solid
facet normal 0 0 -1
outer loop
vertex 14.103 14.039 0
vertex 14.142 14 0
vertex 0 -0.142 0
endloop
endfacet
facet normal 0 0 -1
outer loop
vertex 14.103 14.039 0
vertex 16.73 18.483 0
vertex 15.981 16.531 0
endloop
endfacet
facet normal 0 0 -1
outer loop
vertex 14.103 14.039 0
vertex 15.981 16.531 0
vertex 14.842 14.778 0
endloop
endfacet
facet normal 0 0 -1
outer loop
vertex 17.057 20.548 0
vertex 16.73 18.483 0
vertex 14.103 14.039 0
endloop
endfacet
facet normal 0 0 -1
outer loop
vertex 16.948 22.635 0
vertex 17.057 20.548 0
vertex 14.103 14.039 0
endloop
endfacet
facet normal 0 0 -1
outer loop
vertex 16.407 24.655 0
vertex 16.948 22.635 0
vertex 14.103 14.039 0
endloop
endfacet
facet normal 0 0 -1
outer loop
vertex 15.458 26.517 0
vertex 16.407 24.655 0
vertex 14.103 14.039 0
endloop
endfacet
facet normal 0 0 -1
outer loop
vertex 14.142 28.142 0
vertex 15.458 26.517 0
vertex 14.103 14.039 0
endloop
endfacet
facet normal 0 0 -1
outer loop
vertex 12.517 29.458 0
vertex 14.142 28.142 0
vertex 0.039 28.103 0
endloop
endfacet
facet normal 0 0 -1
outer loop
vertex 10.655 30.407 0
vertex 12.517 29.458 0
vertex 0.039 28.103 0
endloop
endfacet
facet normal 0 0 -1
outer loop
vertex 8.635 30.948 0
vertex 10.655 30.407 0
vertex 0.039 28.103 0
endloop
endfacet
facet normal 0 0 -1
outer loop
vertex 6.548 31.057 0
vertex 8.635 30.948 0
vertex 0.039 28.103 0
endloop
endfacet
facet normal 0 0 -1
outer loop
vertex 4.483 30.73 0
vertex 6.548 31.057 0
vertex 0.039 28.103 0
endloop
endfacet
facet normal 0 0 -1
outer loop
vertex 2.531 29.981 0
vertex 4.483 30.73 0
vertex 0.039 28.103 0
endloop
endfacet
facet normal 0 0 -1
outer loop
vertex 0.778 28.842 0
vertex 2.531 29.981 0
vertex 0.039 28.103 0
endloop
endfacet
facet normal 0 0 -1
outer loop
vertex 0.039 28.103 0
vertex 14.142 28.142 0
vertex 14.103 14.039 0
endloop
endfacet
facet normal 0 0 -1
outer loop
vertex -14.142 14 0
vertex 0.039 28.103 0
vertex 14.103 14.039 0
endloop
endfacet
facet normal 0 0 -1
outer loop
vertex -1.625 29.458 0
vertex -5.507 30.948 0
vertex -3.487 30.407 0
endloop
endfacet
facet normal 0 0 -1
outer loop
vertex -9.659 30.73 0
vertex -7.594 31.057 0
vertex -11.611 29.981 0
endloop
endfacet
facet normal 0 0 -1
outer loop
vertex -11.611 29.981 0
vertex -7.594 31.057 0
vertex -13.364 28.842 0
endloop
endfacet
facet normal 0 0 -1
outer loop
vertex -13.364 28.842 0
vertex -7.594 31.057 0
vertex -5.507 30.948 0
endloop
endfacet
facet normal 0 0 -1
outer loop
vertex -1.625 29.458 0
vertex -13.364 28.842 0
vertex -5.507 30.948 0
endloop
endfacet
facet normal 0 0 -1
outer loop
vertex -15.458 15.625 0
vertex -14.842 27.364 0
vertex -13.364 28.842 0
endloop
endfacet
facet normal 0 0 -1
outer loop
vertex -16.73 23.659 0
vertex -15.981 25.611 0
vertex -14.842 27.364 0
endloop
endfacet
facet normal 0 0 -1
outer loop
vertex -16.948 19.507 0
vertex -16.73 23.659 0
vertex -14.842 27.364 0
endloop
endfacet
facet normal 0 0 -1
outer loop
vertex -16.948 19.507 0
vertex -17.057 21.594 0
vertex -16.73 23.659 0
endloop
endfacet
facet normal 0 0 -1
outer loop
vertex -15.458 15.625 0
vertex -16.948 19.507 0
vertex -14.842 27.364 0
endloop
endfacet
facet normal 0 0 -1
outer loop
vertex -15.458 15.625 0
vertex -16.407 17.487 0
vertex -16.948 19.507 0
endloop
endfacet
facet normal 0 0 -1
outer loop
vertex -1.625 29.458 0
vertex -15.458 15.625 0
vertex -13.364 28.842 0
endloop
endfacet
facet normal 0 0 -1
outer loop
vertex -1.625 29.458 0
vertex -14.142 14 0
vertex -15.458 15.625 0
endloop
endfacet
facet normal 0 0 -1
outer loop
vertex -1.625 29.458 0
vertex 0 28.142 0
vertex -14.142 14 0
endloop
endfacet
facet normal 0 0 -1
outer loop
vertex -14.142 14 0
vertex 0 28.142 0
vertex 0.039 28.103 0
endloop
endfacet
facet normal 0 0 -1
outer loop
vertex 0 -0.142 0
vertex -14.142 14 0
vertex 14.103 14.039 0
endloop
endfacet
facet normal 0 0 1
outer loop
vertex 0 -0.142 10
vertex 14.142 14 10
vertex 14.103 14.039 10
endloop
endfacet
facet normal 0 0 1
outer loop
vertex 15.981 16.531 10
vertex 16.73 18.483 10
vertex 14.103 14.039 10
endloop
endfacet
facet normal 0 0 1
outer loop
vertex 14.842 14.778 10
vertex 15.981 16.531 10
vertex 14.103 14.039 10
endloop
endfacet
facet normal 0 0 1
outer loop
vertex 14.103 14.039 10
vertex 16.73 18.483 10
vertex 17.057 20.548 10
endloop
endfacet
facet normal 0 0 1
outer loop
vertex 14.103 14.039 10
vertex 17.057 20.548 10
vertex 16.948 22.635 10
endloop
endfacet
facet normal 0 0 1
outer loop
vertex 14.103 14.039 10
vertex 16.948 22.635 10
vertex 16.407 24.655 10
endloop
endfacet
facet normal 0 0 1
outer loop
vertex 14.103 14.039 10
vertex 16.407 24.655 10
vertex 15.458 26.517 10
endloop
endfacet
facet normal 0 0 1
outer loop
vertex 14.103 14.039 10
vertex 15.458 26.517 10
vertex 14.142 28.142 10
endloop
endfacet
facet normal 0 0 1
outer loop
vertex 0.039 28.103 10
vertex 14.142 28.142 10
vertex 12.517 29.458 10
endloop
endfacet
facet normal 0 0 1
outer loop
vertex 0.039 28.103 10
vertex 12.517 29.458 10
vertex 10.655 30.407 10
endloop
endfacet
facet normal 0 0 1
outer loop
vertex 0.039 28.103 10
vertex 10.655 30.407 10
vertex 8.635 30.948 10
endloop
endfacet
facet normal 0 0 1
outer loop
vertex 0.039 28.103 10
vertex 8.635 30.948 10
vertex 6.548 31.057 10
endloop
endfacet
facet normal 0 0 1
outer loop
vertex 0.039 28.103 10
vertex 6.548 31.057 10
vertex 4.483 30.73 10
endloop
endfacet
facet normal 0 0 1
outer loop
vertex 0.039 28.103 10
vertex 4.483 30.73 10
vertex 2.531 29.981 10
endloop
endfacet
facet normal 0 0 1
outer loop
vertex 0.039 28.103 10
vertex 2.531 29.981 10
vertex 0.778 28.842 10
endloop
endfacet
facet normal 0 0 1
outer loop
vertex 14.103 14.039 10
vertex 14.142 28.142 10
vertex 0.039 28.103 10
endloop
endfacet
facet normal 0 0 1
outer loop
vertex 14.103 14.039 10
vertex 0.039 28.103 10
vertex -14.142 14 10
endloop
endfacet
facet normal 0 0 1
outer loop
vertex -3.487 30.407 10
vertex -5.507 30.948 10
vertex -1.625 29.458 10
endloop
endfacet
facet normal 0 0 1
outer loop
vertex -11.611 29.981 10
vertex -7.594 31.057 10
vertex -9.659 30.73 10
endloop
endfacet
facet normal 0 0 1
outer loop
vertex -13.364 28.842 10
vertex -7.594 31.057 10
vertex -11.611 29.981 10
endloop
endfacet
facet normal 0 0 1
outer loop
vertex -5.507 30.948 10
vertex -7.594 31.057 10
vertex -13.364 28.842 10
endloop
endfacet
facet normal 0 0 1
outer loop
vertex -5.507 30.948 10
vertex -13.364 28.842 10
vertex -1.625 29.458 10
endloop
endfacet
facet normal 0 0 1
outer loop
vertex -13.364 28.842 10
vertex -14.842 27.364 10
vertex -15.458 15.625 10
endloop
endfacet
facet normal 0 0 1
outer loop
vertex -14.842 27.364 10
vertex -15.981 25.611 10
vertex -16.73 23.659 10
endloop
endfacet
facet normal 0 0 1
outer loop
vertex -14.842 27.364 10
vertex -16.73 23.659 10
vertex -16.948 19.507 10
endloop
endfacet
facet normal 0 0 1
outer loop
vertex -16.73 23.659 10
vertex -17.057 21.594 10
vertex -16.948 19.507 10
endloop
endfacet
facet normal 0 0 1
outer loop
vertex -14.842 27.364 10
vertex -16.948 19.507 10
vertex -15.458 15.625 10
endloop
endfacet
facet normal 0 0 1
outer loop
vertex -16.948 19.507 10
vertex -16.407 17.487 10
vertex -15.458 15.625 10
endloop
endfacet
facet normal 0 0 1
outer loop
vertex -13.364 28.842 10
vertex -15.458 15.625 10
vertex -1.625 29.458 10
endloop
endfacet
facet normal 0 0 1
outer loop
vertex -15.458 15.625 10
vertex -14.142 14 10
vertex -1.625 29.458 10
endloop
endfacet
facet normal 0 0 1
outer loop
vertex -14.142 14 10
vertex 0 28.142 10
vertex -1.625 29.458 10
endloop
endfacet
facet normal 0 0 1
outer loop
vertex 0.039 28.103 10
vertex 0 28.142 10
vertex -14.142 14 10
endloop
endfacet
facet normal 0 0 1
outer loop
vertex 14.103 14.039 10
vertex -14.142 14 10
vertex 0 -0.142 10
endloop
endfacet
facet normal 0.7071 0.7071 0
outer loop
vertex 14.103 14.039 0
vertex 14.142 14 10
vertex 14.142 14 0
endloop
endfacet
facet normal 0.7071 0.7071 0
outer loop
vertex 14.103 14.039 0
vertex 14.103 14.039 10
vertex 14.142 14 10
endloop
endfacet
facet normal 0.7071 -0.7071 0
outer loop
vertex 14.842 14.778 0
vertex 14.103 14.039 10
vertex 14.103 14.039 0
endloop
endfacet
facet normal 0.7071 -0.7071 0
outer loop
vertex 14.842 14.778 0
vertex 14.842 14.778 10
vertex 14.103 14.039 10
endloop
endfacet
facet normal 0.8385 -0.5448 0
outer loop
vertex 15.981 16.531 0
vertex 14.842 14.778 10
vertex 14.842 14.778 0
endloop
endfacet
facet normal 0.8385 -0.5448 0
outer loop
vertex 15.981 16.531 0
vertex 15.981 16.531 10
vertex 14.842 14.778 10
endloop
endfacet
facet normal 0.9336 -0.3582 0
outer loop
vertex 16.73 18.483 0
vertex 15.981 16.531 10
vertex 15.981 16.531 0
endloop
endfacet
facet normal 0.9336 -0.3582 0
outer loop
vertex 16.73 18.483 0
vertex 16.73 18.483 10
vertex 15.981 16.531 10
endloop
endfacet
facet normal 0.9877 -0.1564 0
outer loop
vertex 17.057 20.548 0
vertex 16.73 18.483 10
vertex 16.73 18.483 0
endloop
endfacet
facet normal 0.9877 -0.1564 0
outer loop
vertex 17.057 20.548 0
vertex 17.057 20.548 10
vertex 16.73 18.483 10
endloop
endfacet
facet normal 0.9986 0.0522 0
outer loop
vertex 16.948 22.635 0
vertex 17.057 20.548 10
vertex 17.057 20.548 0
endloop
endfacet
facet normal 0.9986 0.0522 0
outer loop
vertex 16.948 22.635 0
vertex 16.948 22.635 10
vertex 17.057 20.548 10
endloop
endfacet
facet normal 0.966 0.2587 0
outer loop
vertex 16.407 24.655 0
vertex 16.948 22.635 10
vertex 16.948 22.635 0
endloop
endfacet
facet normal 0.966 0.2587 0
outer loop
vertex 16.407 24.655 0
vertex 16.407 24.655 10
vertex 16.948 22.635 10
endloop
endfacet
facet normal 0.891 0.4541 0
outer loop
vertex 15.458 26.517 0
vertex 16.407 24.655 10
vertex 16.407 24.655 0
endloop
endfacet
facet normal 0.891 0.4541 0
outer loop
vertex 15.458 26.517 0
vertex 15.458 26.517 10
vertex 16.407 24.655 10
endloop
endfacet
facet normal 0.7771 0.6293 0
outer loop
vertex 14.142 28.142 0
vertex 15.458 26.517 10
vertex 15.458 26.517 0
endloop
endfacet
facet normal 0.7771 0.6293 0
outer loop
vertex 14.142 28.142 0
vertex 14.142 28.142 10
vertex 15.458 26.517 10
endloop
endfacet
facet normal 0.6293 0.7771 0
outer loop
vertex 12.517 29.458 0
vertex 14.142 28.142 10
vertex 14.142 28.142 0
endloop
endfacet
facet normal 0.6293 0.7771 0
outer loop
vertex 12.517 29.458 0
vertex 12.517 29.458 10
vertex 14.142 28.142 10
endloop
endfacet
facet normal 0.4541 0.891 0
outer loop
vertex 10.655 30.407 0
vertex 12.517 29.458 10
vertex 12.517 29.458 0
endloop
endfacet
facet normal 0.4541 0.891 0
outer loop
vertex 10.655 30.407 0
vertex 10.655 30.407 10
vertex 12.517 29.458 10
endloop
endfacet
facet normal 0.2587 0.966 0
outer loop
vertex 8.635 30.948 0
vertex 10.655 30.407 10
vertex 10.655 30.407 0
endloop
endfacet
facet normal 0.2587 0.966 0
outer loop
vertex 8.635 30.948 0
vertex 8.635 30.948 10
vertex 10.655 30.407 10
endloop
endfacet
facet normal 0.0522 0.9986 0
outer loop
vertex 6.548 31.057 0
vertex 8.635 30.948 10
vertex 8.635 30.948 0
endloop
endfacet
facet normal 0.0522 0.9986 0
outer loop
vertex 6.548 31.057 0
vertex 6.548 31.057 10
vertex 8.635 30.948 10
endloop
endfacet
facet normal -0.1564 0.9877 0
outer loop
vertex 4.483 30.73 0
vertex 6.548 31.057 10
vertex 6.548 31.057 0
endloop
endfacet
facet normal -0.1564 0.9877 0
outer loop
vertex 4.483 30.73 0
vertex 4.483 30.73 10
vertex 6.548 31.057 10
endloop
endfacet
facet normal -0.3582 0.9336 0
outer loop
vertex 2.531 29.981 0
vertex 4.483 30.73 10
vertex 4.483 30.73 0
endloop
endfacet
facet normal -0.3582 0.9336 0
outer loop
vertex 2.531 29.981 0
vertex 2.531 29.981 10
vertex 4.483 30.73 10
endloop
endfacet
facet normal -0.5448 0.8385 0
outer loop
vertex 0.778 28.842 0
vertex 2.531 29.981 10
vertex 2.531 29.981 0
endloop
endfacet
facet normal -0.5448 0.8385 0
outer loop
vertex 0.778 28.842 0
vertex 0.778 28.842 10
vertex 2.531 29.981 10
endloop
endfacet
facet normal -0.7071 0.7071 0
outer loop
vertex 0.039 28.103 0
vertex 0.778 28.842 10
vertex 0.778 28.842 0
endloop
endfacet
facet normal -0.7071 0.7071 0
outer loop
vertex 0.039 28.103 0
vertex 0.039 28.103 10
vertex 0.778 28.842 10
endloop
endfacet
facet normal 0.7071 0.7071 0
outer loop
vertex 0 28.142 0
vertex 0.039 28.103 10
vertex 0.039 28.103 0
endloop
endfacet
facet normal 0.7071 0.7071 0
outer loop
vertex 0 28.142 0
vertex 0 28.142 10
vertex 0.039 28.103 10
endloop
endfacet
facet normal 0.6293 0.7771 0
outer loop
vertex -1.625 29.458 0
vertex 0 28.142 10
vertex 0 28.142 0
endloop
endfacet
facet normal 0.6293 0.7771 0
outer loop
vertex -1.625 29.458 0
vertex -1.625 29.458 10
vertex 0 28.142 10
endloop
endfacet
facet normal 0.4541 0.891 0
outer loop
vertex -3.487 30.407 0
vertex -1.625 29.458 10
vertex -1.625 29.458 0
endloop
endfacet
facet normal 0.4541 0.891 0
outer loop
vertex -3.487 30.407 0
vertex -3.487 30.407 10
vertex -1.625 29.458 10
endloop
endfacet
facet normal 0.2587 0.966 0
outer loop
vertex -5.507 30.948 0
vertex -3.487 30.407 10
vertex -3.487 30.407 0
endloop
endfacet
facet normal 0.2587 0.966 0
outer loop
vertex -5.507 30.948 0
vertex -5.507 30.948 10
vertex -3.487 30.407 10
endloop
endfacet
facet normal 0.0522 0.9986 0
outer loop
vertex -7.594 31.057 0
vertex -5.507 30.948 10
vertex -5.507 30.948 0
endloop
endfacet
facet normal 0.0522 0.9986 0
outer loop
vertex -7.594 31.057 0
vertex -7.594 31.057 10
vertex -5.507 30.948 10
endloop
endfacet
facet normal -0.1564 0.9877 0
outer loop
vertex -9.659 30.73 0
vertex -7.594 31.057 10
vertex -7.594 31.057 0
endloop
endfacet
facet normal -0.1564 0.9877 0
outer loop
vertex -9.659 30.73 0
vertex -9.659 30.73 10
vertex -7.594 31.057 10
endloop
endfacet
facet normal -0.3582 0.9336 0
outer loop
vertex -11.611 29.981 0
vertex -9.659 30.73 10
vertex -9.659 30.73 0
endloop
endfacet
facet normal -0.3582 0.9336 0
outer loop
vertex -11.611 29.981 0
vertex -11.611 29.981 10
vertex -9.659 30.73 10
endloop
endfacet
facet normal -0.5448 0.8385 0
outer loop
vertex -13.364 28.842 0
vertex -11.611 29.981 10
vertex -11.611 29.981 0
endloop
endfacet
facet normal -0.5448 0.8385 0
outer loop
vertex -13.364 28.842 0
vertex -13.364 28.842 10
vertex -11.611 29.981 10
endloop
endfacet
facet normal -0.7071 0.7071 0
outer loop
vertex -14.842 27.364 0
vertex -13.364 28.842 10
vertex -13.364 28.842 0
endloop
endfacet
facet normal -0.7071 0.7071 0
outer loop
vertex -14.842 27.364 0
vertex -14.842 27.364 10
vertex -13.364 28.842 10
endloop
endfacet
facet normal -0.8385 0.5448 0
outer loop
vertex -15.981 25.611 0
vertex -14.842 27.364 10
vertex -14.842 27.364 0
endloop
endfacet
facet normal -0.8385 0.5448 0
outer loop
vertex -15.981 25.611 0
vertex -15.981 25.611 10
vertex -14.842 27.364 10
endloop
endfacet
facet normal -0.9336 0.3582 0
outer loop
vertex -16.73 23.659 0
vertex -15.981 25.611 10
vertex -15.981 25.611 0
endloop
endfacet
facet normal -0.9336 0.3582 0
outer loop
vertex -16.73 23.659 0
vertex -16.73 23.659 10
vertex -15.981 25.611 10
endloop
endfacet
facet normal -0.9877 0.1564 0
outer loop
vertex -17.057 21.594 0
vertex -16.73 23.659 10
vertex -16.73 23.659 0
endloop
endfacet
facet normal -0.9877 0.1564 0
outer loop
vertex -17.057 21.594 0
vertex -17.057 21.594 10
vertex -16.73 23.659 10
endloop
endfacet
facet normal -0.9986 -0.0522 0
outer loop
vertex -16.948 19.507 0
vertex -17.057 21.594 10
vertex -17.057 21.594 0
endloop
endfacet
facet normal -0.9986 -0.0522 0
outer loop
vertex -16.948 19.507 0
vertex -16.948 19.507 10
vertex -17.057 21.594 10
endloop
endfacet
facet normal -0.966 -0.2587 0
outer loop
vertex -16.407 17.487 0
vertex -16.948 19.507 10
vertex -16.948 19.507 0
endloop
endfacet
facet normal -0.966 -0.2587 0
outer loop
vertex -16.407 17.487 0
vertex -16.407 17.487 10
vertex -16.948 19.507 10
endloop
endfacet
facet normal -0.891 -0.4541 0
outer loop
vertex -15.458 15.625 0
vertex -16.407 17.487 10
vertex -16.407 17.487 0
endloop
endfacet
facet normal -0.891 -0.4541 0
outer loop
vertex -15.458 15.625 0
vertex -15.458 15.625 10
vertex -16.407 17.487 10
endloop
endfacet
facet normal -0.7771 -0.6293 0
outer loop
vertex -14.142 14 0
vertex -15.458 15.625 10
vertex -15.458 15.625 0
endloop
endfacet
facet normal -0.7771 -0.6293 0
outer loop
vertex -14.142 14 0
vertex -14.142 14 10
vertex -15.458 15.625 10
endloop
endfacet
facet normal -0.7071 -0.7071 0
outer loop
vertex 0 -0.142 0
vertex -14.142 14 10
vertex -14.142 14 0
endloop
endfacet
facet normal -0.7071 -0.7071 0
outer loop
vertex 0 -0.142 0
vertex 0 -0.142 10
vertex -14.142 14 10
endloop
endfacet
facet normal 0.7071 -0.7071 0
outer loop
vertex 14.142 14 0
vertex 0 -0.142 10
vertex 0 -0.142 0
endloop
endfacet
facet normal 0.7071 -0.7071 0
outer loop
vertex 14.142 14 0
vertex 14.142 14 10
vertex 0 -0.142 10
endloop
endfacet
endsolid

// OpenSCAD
translate ([0, 14, 0])
heart();

module heart()
{
    rotate ([0, 0, 45])
    linear_extrude(height=10)
    flatHeart();
}

module flatHeart()
{
	square(20, center = true);
	
	translate([10,0,0])	
	circle(10, center = true, color="red" );
	
	translate([0,10,0]) 
	circle(10, center = true);
}
